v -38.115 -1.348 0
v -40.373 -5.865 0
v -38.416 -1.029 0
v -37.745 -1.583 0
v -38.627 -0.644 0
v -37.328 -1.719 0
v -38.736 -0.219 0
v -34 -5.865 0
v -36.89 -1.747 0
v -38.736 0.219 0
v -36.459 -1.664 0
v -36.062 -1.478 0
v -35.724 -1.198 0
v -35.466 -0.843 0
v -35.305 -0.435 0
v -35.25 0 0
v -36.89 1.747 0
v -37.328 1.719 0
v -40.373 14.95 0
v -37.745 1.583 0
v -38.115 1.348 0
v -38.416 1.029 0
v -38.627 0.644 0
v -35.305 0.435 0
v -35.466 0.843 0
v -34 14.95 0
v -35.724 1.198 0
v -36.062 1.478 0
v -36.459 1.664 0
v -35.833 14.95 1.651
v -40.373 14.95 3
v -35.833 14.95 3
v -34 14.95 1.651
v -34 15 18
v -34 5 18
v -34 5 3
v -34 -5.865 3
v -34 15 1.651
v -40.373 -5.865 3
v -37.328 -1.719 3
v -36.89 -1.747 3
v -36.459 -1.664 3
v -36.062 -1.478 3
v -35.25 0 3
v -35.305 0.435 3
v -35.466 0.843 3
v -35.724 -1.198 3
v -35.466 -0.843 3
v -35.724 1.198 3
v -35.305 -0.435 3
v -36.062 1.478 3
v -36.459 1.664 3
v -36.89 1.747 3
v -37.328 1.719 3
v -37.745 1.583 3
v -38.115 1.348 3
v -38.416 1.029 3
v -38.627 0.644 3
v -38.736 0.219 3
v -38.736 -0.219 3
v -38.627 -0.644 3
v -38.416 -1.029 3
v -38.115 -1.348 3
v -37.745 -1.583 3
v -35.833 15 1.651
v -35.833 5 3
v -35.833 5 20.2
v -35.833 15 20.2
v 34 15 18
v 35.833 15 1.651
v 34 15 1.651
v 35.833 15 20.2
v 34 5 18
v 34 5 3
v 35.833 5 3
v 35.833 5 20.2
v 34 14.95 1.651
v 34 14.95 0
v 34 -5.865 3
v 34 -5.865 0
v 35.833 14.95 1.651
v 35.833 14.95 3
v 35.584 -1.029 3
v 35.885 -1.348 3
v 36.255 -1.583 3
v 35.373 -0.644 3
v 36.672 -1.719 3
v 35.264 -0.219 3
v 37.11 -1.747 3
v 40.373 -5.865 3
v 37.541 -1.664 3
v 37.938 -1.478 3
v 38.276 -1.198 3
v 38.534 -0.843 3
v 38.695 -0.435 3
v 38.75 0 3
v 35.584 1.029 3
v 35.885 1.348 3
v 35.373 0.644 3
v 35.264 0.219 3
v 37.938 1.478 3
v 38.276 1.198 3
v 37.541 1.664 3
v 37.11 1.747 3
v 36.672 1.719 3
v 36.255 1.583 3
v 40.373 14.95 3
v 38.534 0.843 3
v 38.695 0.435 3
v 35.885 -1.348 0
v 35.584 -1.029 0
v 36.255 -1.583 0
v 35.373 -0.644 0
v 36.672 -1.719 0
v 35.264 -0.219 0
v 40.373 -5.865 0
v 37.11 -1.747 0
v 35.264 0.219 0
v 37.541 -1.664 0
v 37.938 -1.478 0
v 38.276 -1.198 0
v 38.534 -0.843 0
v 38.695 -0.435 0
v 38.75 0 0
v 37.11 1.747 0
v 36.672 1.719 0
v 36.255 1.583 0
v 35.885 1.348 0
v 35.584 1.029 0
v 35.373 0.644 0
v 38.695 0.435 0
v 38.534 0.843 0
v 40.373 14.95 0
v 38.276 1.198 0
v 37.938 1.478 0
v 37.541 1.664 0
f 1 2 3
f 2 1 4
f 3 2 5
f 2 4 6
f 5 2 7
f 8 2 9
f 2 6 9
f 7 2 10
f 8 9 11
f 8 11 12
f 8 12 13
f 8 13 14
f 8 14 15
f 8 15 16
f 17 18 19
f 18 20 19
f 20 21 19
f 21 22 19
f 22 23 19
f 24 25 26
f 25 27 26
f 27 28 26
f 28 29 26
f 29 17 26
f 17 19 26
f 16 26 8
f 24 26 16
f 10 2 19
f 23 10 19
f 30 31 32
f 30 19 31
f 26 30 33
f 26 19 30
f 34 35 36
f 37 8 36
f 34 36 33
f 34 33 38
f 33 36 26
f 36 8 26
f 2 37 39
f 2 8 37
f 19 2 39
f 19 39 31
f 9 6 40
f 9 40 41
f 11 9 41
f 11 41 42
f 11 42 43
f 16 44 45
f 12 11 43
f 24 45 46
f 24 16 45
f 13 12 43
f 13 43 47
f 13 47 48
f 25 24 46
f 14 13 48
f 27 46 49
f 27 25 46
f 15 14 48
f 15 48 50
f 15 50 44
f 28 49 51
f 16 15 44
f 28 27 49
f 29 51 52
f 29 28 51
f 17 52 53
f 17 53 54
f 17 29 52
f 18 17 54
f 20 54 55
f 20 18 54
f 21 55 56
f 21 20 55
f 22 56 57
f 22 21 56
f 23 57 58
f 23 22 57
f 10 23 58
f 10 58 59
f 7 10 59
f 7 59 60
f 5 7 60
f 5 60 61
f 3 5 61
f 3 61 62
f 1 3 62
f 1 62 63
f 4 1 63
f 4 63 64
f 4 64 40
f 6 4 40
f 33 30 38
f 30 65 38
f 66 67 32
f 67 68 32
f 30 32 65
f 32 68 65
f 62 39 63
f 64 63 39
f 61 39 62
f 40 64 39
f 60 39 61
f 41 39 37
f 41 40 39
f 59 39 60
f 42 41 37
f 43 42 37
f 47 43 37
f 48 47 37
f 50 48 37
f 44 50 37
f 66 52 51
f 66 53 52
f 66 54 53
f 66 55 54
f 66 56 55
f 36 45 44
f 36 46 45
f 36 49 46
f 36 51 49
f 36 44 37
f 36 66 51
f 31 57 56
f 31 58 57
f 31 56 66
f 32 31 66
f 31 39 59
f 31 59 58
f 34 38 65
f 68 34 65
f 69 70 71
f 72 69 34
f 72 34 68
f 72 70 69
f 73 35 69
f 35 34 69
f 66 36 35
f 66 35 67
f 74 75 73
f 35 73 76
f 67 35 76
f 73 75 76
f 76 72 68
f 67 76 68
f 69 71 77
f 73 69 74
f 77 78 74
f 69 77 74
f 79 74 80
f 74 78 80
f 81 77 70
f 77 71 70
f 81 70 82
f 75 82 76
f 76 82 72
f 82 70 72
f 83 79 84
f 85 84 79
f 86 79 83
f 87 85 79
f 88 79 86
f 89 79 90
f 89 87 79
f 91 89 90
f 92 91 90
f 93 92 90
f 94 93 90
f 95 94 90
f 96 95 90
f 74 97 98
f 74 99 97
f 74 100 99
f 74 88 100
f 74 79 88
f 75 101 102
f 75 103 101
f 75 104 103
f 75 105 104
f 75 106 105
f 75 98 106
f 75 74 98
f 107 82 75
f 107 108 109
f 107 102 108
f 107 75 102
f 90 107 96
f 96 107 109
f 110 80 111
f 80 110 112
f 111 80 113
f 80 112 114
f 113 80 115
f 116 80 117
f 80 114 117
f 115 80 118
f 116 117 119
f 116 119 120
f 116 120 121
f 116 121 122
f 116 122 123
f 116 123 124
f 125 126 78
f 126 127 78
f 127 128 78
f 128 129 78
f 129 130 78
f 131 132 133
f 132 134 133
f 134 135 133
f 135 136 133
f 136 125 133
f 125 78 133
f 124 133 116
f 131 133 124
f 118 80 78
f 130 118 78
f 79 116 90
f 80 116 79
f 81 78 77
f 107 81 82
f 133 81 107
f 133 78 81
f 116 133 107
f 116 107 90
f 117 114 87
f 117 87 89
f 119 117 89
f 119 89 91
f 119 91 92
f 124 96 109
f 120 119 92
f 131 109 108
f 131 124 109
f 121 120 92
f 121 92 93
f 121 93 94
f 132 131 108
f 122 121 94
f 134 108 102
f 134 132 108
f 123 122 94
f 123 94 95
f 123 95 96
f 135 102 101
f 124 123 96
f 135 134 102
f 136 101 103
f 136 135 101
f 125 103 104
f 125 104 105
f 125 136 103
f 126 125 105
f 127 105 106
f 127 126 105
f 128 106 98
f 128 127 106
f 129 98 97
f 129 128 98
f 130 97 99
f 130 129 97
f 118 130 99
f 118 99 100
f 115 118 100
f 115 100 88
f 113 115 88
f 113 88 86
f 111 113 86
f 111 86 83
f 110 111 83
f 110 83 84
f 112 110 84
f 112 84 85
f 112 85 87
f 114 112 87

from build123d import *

# Parameters (mm, degrees)
SKETCH001_W  = 68
SKETCH001_H  = 72.5
PAD001_DEPTH = 18
SKETCH002_W  = 71.665652
SKETCH002_H  = 18.549143
PAD002_DEPTH = 10
SKETCH_W     = 80.745956
SKETCH_H     = 20.815728
SKETCH_R     = 1.75
PAD_DEPTH    = 3


with BuildPart() as pad001:
    # Sketch001 → Pad001 (new body)
    with BuildSketch(Plane.XY):
        with Locations((0, 1.520855)):
            Rectangle(SKETCH001_W, SKETCH001_H)
    extrude(amount=PAD001_DEPTH)


with BuildPart() as pad002:
    # Sketch002 → Pad002 (new body)
    with BuildSketch(Plane.XZ.offset(-15)):
        with Locations((0, 10.925129)):
            Rectangle(SKETCH002_W, SKETCH002_H)
    extrude(amount=PAD002_DEPTH)


with BuildPart() as cut:
    # Sketch → Pad (new body)
    with BuildSketch(Plane.XY):
        with Locations((0, 4.542604)):
            Rectangle(SKETCH_W, SKETCH_H)
        with Locations((-37, 0)):
            Circle(SKETCH_R, mode=Mode.SUBTRACT)
        with Locations((37, 0)):
            Circle(SKETCH_R, mode=Mode.SUBTRACT)
    extrude(amount=PAD_DEPTH)

    # Fusion: union Pad002
    add(pad002.part)

    # Cut: cut Pad001
    add(pad001.part, mode=Mode.SUBTRACT)


solid = cut.part
